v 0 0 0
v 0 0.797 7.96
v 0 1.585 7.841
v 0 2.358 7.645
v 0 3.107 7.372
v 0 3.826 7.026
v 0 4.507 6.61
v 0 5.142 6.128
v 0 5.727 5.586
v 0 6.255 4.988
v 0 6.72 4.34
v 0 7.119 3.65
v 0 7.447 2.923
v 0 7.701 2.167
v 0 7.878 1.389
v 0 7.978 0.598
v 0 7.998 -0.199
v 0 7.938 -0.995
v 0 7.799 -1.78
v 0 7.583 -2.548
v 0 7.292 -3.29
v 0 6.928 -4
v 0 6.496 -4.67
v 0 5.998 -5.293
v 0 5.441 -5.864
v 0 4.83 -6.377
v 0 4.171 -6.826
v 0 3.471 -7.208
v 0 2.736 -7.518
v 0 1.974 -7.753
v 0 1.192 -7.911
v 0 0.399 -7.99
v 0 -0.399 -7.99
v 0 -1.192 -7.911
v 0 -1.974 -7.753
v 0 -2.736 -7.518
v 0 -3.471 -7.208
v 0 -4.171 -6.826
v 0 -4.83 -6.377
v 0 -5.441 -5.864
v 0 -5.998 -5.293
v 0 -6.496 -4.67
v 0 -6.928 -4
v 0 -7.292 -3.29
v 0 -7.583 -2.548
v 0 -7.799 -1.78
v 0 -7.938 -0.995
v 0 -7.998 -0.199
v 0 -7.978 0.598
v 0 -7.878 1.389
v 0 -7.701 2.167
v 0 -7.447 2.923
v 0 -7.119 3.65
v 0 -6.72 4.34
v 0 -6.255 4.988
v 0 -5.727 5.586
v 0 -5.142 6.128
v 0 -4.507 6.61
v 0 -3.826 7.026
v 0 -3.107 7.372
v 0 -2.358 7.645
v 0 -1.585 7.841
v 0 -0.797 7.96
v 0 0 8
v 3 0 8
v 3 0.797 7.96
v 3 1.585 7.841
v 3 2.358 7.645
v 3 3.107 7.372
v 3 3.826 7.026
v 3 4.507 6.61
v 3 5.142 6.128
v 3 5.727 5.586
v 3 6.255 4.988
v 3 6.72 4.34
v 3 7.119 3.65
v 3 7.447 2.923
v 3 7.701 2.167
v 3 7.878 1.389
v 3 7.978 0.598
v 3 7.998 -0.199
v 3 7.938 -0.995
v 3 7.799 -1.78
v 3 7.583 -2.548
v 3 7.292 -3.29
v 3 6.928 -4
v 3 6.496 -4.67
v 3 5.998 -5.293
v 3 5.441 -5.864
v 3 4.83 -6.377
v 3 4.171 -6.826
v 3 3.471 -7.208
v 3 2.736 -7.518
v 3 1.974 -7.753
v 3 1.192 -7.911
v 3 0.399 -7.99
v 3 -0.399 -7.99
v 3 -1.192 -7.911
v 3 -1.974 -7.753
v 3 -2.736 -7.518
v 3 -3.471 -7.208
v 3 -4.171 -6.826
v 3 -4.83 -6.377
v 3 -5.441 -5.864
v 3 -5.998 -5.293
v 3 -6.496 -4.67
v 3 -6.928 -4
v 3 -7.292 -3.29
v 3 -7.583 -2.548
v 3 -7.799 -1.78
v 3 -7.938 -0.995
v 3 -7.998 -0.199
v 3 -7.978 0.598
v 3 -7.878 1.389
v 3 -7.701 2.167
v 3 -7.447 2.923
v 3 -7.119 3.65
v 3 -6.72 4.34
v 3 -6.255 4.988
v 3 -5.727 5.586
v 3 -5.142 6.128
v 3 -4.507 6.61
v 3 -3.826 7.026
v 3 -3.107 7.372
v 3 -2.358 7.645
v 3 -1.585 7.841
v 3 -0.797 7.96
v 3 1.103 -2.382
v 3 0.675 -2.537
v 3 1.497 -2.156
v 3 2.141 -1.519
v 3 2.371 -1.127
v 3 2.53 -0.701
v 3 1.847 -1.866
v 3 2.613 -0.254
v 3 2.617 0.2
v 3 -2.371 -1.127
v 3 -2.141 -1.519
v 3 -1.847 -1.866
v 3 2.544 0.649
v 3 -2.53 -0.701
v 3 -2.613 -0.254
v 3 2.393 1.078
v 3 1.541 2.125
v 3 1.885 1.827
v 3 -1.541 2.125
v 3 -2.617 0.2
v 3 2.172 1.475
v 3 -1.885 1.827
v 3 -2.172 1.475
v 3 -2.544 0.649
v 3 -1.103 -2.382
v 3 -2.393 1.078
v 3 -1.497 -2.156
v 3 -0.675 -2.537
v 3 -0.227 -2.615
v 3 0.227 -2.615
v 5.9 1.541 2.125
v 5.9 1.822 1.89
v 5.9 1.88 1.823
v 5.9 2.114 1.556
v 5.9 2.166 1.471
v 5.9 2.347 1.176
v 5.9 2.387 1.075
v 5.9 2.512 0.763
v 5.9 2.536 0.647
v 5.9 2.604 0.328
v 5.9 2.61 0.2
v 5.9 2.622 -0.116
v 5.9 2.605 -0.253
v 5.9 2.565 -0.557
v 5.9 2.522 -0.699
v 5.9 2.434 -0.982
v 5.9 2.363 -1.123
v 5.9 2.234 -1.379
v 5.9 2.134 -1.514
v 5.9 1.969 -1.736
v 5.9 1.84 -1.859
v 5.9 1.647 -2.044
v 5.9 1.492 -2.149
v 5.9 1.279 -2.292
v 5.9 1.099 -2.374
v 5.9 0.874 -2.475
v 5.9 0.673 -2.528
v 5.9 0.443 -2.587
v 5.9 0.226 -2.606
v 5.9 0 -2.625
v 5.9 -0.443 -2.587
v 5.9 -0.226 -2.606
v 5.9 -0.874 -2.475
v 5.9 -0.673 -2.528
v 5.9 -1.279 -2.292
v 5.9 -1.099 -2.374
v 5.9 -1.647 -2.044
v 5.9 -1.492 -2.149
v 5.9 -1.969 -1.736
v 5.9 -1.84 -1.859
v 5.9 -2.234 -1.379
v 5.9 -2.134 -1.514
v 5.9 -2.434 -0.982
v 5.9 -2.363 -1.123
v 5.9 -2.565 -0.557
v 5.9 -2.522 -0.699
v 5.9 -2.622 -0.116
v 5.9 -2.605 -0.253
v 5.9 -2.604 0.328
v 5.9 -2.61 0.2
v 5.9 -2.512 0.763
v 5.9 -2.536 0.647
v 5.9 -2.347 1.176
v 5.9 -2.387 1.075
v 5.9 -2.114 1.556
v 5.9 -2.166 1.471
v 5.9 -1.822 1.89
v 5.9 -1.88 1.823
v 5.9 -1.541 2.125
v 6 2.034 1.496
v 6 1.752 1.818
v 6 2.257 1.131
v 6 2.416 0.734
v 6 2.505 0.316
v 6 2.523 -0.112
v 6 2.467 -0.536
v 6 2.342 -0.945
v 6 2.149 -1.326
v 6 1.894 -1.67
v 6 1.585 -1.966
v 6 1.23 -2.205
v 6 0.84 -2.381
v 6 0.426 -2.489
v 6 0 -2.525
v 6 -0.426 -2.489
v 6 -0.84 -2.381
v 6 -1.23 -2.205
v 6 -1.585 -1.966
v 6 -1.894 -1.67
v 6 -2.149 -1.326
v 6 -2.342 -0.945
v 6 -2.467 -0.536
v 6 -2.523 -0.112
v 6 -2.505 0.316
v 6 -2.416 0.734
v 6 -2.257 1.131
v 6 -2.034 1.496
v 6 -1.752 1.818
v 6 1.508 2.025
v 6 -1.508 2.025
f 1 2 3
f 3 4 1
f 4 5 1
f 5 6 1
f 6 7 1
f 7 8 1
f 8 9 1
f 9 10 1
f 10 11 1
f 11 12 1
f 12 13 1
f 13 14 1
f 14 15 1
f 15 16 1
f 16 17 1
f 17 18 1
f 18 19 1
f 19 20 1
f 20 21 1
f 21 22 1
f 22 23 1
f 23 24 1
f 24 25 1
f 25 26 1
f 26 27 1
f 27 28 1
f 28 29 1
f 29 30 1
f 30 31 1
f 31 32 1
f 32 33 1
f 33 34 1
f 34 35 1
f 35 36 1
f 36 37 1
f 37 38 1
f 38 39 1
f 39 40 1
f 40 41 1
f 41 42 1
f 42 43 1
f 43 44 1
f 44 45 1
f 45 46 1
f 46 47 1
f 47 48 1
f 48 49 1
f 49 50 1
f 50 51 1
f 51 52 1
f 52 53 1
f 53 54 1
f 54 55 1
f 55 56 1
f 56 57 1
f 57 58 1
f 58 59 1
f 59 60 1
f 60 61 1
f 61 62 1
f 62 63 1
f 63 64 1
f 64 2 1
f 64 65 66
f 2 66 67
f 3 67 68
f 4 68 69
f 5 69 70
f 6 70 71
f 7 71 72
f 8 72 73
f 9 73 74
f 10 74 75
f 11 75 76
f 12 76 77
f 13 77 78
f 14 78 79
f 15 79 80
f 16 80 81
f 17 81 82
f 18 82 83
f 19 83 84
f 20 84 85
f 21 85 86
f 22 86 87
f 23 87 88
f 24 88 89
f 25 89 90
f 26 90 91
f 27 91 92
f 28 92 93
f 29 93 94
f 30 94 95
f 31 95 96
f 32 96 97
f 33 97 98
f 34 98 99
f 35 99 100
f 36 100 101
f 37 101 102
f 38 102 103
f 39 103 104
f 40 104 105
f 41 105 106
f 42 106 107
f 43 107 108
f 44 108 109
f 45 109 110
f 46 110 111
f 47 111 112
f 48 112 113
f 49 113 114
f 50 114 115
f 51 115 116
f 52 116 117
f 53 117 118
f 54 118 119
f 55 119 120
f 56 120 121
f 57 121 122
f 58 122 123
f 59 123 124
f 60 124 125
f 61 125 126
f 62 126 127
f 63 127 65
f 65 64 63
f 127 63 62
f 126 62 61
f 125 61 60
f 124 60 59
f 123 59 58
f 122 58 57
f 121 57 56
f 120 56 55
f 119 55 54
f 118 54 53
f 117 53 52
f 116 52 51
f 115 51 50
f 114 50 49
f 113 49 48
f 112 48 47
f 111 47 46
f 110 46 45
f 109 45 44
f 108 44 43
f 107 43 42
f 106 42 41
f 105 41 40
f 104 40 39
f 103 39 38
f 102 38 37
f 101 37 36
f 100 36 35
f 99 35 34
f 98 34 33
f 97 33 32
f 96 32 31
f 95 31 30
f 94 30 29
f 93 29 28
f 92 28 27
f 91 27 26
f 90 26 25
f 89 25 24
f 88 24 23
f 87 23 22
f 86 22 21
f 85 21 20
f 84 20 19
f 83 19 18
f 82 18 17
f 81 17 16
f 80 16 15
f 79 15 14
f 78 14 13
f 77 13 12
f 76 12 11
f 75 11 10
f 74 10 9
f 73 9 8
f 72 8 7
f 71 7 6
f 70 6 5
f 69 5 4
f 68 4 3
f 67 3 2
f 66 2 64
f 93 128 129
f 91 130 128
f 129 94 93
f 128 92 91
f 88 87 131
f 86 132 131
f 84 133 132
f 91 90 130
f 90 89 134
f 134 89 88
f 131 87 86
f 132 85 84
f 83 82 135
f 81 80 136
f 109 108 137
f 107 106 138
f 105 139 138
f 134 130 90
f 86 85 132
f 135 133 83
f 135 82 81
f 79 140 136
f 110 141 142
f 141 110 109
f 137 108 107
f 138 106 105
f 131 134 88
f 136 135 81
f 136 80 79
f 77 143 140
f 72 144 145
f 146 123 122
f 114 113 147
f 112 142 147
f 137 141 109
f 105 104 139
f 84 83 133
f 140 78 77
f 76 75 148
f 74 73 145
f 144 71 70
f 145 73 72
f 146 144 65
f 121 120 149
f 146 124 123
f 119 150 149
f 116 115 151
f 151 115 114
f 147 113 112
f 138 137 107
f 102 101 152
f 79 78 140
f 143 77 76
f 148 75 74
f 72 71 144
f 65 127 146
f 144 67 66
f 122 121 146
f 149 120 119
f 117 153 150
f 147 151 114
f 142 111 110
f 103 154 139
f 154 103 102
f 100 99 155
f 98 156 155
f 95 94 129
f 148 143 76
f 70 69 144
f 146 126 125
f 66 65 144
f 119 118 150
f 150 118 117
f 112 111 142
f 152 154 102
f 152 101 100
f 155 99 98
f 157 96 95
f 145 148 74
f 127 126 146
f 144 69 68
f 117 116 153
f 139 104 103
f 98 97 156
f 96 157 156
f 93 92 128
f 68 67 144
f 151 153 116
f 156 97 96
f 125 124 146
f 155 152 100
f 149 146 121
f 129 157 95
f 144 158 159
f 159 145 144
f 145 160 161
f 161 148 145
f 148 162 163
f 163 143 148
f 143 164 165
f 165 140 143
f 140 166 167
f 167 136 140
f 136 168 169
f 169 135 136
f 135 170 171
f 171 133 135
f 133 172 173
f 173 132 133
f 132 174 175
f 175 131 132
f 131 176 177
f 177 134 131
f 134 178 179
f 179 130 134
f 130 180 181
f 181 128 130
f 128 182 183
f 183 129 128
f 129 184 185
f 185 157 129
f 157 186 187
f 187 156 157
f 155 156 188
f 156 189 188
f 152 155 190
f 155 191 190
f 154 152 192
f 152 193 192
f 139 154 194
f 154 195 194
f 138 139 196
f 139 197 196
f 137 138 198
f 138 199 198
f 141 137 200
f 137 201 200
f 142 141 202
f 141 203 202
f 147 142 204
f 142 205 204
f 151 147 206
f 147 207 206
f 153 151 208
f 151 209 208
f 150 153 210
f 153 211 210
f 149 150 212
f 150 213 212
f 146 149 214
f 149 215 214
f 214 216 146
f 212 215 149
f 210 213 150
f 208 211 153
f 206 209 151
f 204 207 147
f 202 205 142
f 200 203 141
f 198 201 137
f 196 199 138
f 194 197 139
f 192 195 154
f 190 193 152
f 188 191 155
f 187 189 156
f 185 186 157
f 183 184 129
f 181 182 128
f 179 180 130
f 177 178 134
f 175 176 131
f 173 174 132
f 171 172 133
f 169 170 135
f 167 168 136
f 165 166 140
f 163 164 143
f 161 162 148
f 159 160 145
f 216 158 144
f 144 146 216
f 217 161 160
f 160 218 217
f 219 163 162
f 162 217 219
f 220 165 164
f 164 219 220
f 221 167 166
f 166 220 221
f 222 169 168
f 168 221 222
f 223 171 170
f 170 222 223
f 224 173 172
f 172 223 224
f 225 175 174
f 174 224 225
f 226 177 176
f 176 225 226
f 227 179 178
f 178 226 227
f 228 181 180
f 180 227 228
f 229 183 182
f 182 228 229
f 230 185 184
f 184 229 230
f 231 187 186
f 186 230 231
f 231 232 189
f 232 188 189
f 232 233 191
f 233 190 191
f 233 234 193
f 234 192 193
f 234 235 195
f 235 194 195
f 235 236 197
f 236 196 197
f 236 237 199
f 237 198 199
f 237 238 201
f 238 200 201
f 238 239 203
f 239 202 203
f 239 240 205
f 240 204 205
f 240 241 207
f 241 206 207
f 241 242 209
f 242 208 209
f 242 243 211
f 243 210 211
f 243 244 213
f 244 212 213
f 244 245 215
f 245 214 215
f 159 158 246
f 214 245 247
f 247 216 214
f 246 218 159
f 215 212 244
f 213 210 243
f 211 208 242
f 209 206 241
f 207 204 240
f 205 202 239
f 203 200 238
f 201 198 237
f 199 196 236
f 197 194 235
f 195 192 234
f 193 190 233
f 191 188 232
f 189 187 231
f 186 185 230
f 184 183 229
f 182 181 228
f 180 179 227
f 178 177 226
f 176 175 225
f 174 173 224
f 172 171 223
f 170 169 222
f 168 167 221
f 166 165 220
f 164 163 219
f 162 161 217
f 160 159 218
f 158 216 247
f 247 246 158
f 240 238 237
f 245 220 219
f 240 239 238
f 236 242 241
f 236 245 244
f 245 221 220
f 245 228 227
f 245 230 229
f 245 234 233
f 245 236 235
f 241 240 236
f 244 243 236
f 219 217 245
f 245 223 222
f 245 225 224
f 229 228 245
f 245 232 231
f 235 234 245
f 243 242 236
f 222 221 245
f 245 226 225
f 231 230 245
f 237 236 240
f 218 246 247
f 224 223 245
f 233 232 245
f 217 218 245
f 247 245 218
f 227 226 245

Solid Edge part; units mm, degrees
sketch "Sketch1" plane through (0, 0, 0) normal (0, -1, 0) x (1, 0, 0)
  line L0 (3, 0) -> (3, 8)
  line L1 (3, 8) -> (0, 8)
  line L2 (0, 8) -> (0, 0)
  dimension "D1" = 3
revolve "RevolvedProtrusion1" add sketch "Sketch1" angle 360 about axis through (0, 0, 0) along (1, 0, 0)
sketch "Sketch2" plane through (3, 0, 0) normal (1, 0, 0) x (0, 1, 0)
  line L0 (-1.5411, 2.125) -> (1.5411, 2.125)
  arc A0 (1.5411, 2.125) -> (-1.5411, 2.125) centre (0, 0) cw
  dimension "D1" = 2.125
extrude "Protrusion1" add sketch "Sketch2" along normal blind 3
chamfer "Fase_2" distance 0.1 angle 45 2 edges at (6, 0, -2.625) (6, 0, 2.125)
